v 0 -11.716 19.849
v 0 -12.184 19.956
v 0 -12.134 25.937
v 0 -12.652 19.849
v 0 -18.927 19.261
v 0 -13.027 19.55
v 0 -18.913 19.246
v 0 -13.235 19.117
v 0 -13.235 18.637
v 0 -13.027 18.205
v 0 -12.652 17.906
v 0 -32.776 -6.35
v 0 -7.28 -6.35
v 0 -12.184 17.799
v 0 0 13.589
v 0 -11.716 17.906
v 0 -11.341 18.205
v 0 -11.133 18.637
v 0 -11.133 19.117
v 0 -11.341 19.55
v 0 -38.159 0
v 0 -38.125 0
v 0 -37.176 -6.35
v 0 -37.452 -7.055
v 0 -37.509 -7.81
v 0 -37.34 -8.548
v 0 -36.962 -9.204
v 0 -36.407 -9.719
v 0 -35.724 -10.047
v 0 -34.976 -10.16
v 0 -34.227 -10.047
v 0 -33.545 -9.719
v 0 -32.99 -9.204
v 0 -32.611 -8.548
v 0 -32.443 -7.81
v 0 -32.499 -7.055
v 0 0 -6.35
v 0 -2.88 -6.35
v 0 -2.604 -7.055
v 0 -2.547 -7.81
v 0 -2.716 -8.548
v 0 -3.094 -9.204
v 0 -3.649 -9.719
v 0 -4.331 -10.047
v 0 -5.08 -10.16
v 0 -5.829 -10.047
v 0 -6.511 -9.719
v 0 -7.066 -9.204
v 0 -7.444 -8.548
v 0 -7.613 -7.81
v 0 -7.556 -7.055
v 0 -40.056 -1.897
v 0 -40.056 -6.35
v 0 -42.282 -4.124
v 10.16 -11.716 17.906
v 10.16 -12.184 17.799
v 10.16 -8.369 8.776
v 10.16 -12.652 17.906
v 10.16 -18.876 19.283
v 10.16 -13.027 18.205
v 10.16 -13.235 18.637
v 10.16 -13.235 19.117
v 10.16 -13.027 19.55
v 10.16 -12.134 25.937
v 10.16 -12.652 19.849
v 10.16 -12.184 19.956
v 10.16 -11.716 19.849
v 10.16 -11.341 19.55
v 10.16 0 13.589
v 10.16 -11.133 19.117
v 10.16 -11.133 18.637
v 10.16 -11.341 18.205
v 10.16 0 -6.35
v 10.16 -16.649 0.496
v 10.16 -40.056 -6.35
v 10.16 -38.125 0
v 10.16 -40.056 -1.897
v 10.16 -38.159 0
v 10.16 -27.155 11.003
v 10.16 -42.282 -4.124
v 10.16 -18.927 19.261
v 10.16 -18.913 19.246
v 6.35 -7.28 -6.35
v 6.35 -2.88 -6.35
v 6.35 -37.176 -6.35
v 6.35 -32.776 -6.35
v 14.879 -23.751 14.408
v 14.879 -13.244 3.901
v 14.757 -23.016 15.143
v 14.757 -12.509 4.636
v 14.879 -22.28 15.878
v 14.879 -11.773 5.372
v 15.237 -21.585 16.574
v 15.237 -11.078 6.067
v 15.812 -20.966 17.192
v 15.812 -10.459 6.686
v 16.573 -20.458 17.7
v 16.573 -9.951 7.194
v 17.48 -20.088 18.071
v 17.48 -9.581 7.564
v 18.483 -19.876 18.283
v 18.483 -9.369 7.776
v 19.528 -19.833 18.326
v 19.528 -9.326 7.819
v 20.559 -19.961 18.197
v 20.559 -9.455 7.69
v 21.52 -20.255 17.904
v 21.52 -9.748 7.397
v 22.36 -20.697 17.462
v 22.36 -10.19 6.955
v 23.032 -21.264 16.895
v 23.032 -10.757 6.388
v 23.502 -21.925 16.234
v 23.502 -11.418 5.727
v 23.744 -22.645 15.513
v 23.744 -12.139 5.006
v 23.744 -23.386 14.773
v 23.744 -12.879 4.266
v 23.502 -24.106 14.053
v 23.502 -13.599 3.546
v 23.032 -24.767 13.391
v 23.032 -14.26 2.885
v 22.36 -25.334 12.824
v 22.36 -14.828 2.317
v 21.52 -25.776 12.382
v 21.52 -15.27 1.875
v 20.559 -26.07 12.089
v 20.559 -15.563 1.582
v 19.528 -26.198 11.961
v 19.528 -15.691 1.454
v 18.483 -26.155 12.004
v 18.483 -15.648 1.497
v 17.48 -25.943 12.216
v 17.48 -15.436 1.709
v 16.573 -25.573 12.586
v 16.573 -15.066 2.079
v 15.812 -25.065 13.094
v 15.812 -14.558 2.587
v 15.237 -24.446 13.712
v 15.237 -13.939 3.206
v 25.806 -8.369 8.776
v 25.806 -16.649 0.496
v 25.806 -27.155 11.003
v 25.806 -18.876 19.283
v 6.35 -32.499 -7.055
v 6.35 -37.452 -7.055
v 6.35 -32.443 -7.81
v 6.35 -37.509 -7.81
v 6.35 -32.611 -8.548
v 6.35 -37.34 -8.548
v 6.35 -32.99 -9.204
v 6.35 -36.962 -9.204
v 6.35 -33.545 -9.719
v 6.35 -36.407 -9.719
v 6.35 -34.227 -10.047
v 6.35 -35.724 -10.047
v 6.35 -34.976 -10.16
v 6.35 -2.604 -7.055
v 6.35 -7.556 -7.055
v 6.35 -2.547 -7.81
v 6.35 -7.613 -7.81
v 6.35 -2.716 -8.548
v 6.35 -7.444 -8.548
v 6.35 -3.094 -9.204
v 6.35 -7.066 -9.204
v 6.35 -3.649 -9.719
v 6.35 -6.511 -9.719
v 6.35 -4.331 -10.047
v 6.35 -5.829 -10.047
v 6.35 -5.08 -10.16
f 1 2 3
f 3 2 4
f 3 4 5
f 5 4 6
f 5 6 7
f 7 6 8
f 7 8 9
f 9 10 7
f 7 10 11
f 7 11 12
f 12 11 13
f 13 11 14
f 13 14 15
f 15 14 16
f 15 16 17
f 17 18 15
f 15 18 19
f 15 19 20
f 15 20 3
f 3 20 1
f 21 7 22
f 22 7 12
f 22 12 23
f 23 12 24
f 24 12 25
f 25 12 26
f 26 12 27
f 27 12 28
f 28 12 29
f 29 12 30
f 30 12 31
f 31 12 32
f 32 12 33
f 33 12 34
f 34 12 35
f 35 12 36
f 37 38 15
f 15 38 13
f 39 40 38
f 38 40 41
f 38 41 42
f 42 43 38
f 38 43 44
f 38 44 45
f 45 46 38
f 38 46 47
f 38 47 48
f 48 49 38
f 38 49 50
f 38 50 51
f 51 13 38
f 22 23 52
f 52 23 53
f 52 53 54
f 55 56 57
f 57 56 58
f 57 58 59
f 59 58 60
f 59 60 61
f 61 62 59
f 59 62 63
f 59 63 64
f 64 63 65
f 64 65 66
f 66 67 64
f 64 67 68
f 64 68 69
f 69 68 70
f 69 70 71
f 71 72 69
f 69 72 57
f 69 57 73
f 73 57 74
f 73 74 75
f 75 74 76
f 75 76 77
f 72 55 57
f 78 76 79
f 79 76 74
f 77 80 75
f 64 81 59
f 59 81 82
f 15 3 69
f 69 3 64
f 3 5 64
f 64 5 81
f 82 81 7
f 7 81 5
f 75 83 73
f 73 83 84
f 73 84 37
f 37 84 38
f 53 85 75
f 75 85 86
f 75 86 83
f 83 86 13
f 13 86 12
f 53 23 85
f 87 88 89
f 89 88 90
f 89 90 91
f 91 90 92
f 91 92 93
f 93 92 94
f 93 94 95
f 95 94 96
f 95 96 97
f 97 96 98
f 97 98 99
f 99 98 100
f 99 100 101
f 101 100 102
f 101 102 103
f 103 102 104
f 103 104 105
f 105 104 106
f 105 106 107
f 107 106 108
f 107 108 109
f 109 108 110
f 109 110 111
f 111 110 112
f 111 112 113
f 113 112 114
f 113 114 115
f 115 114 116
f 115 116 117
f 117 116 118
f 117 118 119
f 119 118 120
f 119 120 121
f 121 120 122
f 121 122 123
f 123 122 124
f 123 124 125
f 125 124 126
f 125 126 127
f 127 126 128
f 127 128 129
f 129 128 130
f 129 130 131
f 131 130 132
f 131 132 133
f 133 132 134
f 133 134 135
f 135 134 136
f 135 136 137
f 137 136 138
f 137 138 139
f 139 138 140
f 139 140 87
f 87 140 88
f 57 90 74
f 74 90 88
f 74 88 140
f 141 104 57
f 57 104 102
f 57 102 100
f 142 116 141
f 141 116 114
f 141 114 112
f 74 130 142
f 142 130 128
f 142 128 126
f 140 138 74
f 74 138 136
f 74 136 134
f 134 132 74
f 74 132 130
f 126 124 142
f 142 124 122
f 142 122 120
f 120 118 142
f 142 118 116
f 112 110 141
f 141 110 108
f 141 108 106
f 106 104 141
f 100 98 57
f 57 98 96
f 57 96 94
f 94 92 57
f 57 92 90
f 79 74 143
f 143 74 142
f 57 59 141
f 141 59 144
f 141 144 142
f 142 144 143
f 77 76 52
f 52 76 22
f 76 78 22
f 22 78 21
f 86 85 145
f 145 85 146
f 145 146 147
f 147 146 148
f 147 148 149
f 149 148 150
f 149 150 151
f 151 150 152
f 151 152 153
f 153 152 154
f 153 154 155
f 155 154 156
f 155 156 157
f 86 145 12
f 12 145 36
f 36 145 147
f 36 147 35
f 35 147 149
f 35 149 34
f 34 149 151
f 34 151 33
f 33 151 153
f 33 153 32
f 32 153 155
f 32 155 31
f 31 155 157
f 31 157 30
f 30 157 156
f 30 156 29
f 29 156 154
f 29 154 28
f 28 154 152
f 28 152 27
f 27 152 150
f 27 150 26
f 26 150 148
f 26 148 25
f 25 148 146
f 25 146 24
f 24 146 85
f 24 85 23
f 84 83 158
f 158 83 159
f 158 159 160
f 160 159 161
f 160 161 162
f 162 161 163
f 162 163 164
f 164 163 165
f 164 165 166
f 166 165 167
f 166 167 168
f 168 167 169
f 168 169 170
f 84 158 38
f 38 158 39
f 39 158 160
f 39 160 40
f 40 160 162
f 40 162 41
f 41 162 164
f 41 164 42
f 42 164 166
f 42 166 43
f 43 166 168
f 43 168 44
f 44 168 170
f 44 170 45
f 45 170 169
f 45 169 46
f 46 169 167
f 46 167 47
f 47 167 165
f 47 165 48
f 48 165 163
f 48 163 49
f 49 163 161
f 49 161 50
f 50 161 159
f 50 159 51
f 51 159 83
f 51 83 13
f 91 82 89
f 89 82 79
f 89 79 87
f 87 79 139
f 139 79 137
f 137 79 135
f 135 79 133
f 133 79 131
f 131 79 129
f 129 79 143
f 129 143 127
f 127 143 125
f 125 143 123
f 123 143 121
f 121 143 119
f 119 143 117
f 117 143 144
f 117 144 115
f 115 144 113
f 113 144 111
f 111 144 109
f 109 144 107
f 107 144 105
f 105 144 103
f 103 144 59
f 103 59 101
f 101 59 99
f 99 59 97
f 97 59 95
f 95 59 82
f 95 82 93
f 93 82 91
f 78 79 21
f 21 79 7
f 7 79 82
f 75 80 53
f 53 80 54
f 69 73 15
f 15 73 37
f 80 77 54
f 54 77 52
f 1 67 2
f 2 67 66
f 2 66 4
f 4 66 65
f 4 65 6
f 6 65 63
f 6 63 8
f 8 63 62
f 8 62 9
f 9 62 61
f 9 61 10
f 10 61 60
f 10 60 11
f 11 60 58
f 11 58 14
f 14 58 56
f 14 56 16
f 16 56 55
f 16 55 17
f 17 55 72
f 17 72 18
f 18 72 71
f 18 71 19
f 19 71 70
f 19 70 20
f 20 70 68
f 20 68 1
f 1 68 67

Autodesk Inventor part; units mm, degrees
ref_plane "YZ Plane" through (0, 0, 0) normal (1, 0, 0) x (0, 1, 0)
ref_plane "XZ Plane" through (0, 0, 0) normal (0, 1, 0) x (-1, 0, 0)
ref_plane "XY Plane" through (0, 0, 0) normal (0, 0, 1) x (1, 0, 0)
sketch "Sketch1" plane through (0, 0, 0) normal (1, 0, 0) x (0, 1, 0)
  line L0 (0, 0) -> (-40.0558, 0)
  line L1 (-40.0558, 0) -> (-40.0558, -6.35)
  line L2 (-40.0558, -6.35) -> (0, -6.35)
  line L3 (0, -6.35) -> (0, 0)
  line L4 (-23.495, -6.35) -> (-34.0019, 4.1569)
  line L5 (-34.0019, 4.1569) -> (-42.2823, -4.1235)
  line L6 (-42.2823, -4.1235) -> (-31.7754, -14.6304)
  line L7 (-31.7754, -14.6304) -> (-23.495, -6.35)
  line L8 (-23.495, -6.35) -> (-8.636, -6.35) construction
  line L9 (-23.495, -6.35) -> (0, -6.35) construction
  dimension "d0" = 40.0558
  dimension "d2" = 6.35
  dimension "d3" = 14.859
  dimension "d4" = 135
  dimension "d6" = 23.495
extrude "Extrusion1" add sketch "Sketch1" along normal blind 26.3652
sketch "Sketch2" plane through (26.3652, 0, 0) normal (1, 0, 0) x (0, 0, -1)
  line L0 (6.35, -23.495) -> (6.35, 0) projected
  line L1 (6.35, 0) -> (0, 0) projected
  line L2 (0, 0) -> (0, -29.845) projected
  line L3 (14.6304, -31.7754) -> (6.35, -23.495) projected
  line L4 (6.35, -23.495) -> (0, -29.845)
  line L5 (0, -29.845) -> (0, 0)
  line L6 (0, 0) -> (6.35, 0)
  line L7 (6.35, 0) -> (6.35, -23.495)
extrude "Extrusion2" cut sketch "Sketch2" against normal blind 16.2052
sketch "Sketch5" plane through (0, 0, 0) normal (-1, 0, 0) x (0, 0, 1)
  line L0 (-4.1235, -42.2823) -> (-14.6304, -31.7754) projected
  line L1 (-6.35, -23.495) -> (-6.35, 0) projected
  line L2 (-6.35, -23.495) -> (-6.35, -40.0558)
  line L3 (-6.35, -40.0558) -> (-14.6304, -31.7754)
  line L4 (-14.6304, -31.7754) -> (-6.35, -23.495)
extrude "Extrusion5" cut sketch "Sketch5" against normal blind 12.7
sketch "Sketch6" plane through (26.3652, -23.495, -6.35) normal (0, 0.7071, -0.7071) x (-1, 0, 0)
  line L0 (13.6652, -11.7103) -> (0, -11.7103) projected
  circle A0 centre (6.8326, -5.8551) radius 4.5085
  line L1 (13.6652, 0) -> (0, 0) projected
  line L2 (0, -11.7103) -> (0, 0) projected
  line L3 (6.8326, -5.8551) -> (6.8326, 0) construction
  line L4 (6.8326, -5.8551) -> (6.8326, -11.7103) construction
  point P0 (26.3652, 21.1036)
  dimension "d24" = 9.017
extrude "Extrusion6" cut sketch "Sketch6" against normal blind 25.4
sketch "Sketch7" plane through (0, 0, 0) normal (-1, 0, 0) x (0, 0, 1)
  line L0 (-6.35, 0) -> (-6.35, -40.0558) projected
  line L1 (-6.35, 0) -> (0, 0) projected
  circle A0 centre (-7.62, -34.9758) radius 2.54
  line L2 (-7.62, -34.9758) -> (-6.35, -34.9758) construction
  line L3 (-6.35, -34.9758) -> (-6.35, -40.0558) construction
  line L4 (-6.35, 0) -> (-6.35, -5.08) construction
  line L5 (-6.35, -5.08) -> (-7.62, -5.08) construction
  circle A1 centre (-7.62, -5.08) radius 2.54
  dimension "d27" = 1.27
  dimension "d29" = 5.08
  dimension "d30" = 5.08
  dimension "d31" = 5.08
  dimension "d32" = 1.27
  dimension "d33" = 5.08
extrude "Extrusion7" add sketch "Sketch7" against normal blind 6.35
sketch "Sketch8" plane through (0, 0, 0) normal (-1, 0, 0) x (0, 0, 1)
  line L0 (0, -29.845) -> (4.1569, -34.0019) projected
  line L1 (0, 0) -> (0, -29.845) projected
  line L2 (4.1569, -34.0019) -> (-4.1235, -42.2823) projected
  line L3 (-6.35, -7.2797) -> (-6.35, -32.7761) projected
  line L4 (4.1569, -34.0019) -> (4.1569, -26.3819)
  line L5 (4.1569, -26.3819) -> (0, -22.225)
  line L6 (0, -22.225) -> (0, -29.845)
  line L7 (4.1569, -34.0019) -> (0, -29.845)
  dimension "d42" = 7.62
extrude "Extrusion8" add sketch "Sketch8" against normal blind 12.1412
ref_plane "Work Plane1" through (12.1412, -6.35, -6.35) normal (1, 0, 0) x (0, 0, -1)
sketch "Sketch9" plane through (12.1412, -6.35, -6.35) normal (1, 0, 0) x (0, 0, -1)
  line L0 (-10.5069, 6.35) -> (-10.5069, -29.5569) projected
  line L1 (-6.35, -25.4) -> (-10.5069, -29.5569) projected
  line L2 (-6.35, -25.4) -> (-6.35, 0) projected
  circle A0 centre (-8.4284, -20.4934) radius 1.5875
  line L3 (-6.35, -20.4934) -> (-10.5069, -20.4934) construction
  line L4 (-8.4284, -20.4934) -> (-8.4284, -27.4784) construction
  point P0 (-6.35, 6.35)
  dimension "d38" = 3.175
  dimension "d39" = 6.985
extrude "Extrusion9" add sketch "Sketch9" along normal blind 2.54
sketch "Sketch10" plane through (26.3652, 0, 0) normal (1, 0, 0) x (0, 0, -1)
  line L0 (0, -40.0558) -> (1.897, -40.0558) projected
  line L1 (14.6304, -31.7754) -> (6.35, -23.495) projected
  line L2 (0, -38.1254) -> (1.897, -40.0558)
  line L3 (1.897, -40.0558) -> (0, -40.0558)
  line L4 (0, -38.1254) -> (0, -40.0558)
  line L5 (0, -38.1254) -> (1.897, -40.0558)
  point P0 (0, 0)
  dimension "d43" = 0.5
extrude "Extrusion10" cut sketch "Sketch10" against normal blind 38.1
sketch "Sketch11" plane through (14.6812, -26.8434, 2.0784) normal (1, 0, 0) x (0, 0, -1)
  circle A0 centre (0, 0) radius 1.5875 projected
  circle A1 centre (0, 0) radius 1.5875
  line L0 (-1.5875, 0) -> (1.5875, 0)
  line L1 (1.5875, 0) -> (1.5875, -2.159)
  line L2 (1.5875, -2.159) -> (-1.5875, -2.159)
  line L3 (-1.5875, -2.159) -> (-1.5875, 0)
  point P0 (2.0784, 26.8434)
  dimension "d46" = 2.159
extrude "Extrusion11" add sketch "Sketch11" along normal blind 2.54
sketch "Sketch14" plane through (12.1412, -6.35, -6.35) normal (1, 0, 0) x (0, 0, -1)
  line L0 (-6.8465, -10.2985) -> (-15.1263, -2.0187)
  line L1 (8.2804, -25.4254) -> (0, -17.145) projected
  line L2 (-15.1263, -2.0187) -> (-25.6332, -12.5256)
  line L3 (-25.6332, -12.5256) -> (-17.3534, -20.8054)
  line L4 (-17.3534, -20.8054) -> (-6.8465, -10.2985)
  point P0 (-6.35, 6.35)
  dimension "d60" = 11.7094
  dimension "d61" = 14.859
extrude "Extrusion14" add sketch "Sketch14" along normal blind 13.6652
sketch "Sketch15" plane through (12.1412, -6.35, -6.35) normal (-1, 0, 0) x (0, 0, 1)
  line L0 (6.8465, -10.2985) -> (15.1263, -2.0187) projected
  line L1 (25.6332, -12.5256) -> (17.3534, -20.8054) projected
  line L2 (15.1263, -2.0187) -> (25.6332, -12.5256)
  line L3 (25.6332, -12.5256) -> (17.3534, -20.8054)
  line L4 (6.8465, -10.2985) -> (17.3534, -20.8054)
  line L5 (6.8465, -10.2985) -> (15.1263, -2.0187)
  point P0 (6.35, 6.35)
extrude "Extrusion15" add sketch "Sketch15" along normal up to surface (12.1412 mm away)
sketch "Sketch17" plane through (0, 0, 0) normal (-1, 0, 0) x (0, 0, 1)
  line L0 (-1.897, -40.0558) -> (0, -38.1254) projected
  line L1 (4.1569, -26.3819) -> (0, -22.225) projected
  line L2 (0, 0) -> (0, -22.225) projected
  line L3 (-6.35, -37.1755) -> (-6.35, -40.0558) projected
  line L4 (-1.897, -40.0558) -> (-4.1235, -42.2823) projected
  line L5 (0, 0) -> (0, -22.225)
  line L6 (0, -22.225) -> (3.1163, -19.1087)
  line L7 (3.1163, -19.1087) -> (11.1874, -11.0376)
  line L8 (11.1874, -11.0376) -> (8.66, -8.5101)
  line L9 (8.66, -8.5101) -> (0, 0)
extrude "Extrusion17" add sketch "Sketch17" against normal up to surface (10.16 mm away)
sketch "Sketch18" plane through (25.8064, -8.3687, 8.7763) normal (0, 0.7071, -0.7071) x (-1, 0, 0)
  circle A0 centre (6.5407, -5.8547) radius 4.5085
  point P0 (25.8064, -0.2882)
  dimension "d70" = 9.017
extrude "Extrusion18" cut sketch "Sketch18" against normal up to surface (14.859 mm away)
sketch "Sketch19" plane through (26.3652, 0, 0) normal (1, 0, 0) x (0, 0, -1)
  line L0 (0, -38.1588) -> (0, -38.1254) projected
  line L1 (0, -38.1254) -> (1.897, -40.0558) projected
  line L2 (1.897, -40.0558) -> (4.1235, -42.2823) projected
  line L3 (14.6304, -31.7754) -> (6.35, -23.495) projected
  line L4 (-4.1569, -34.0019) -> (0, -38.1588) projected
  line L5 (-4.1569, -34.0019) -> (6.35, -23.495)
  line L6 (14.6304, -31.7754) -> (6.35, -23.495)
  line L7 (14.6304, -31.7754) -> (4.1235, -42.2823)
  line L8 (-4.1569, -34.0019) -> (4.1235, -42.2823)
  point P0 (0, 0)
extrude "Extrusion19" cut sketch "Sketch19" against normal up to surface (16.2052 mm away) contours L4 L5 L3 L7 L2 L1 L0
sketch "Sketch21" plane through (10.16, 0, 0) normal (1, 0, 0) x (0, 0, -1)
  line L0 (-8.6473, -8.4977) -> (0, 0) projected
  line L1 (0, 0) -> (-19.2606, -18.9274)
  line L2 (-19.2606, -18.9274) -> (-25.9368, -12.1336)
  line L3 (0, 0) -> (-6.6762, 6.7937)
  line L4 (-6.6762, 6.7937) -> (-25.9368, -12.1336)
  line L5 (0, 0) -> (-4.5719, 0)
  line L6 (-4.5719, 0) -> (-13.5895, 0)
  dimension "d75" = 9.525
extrude "Extrusion21" add sketch "Sketch21" against normal up to surface (10.16 mm away) contours L1 L2 L4 L6 L5 L0
sketch "Sketch22" plane through (10.16, 0, 0) normal (1, 0, 0) x (0, 0, -1)
  line L0 (-8.7763, -8.3687) -> (-19.2832, -18.8756) projected
  circle A0 centre (-18.8774, -12.1837) radius 1.588
  line L1 (-25.9368, -12.1336) -> (-19.2606, -18.9274) projected
  point P0 (0, 0)
  dimension "d81" = 3.176
  dimension "d82" = 4.445
  dimension "d95" = 5
extrude "Extrusion22" [suppressed]
sketch "Sketch23" plane through (24.2316, -12.1837, 18.8774) normal (1, 0, 0) x (0, 0, -1)
  circle A0 centre (0, 0) radius 1.588 projected
  circle A1 centre (0, 0) radius 1.588
  line L0 (0.0027, 1.588) -> (-2.1563, 1.588)
  line L1 (-2.1563, 1.588) -> (-2.1563, -1.588)
  line L2 (-2.1563, -1.588) -> (0.0027, -1.588)
  line L3 (0.0027, -1.588) -> (0.0027, 1.588)
  point P0 (18.8774, 12.1837)
  dimension "d85" = 2.159
extrude "Extrusion23" [suppressed]
sketch "Sketch24" plane through (10.16, 0, 0) normal (1, 0, 0) x (0, 0, -1)
  line L0 (6.35, 0) -> (6.35, -40.0558) projected
  line L1 (-13.5895, 0) -> (6.35, 0) projected
  line L2 (-13.5895, 0) -> (-25.9368, -12.1336) projected
  line L3 (-25.9368, -12.1336) -> (-19.2606, -18.9274) projected
  line L4 (-19.2606, -18.9274) -> (-19.2459, -18.9129) projected
  line L5 (-19.2832, -18.8756) -> (-19.2459, -18.9129) projected
  line L6 (-8.7763, -8.3687) -> (-19.2832, -18.8756) projected
  line L7 (-0.4965, -16.6485) -> (-8.7763, -8.3687) projected
  line L8 (-3.0365, -19.1885) -> (-0.4965, -16.6485) projected
  line L9 (0, -22.225) -> (-3.0365, -19.1885) projected
  line L10 (0, -29.845) -> (0, -22.225) projected
  line L11 (-4.1569, -34.0019) -> (0, -29.845) projected
  line L12 (0, -38.1588) -> (-4.1569, -34.0019) projected
  line L13 (0, -38.1254) -> (0, -38.1588) projected
  line L14 (1.897, -40.0558) -> (0, -38.1254) projected
  line L15 (4.1235, -42.2823) -> (1.897, -40.0558) projected
  line L16 (6.35, -40.0558) -> (4.1235, -42.2823) projected
  line L17 (-4.1569, -34.0019) -> (0, -34.0019)
  line L18 (0, -34.0019) -> (0, -22.225)
  line L19 (0, -22.225) -> (-4.1569, -22.225)
  line L20 (-4.1569, -22.225) -> (-4.1569, -34.0019)
  point P0 (0, 0)
extrude "Extrusion24" cut sketch "Sketch24" along normal up to surface (7.0612 mm away) contours L20 L19 L10 L11 | L11 L18 L17
sketch "Sketch25" plane through (10.16, 0, 0) normal (1, 0, 0) x (0, 0, -1)
  line L0 (-4.1569, -34.0019) -> (-4.1569, -26.3819) projected
  line L1 (-4.1569, -34.0019) -> (-4.1569, -26.3819)
  line L2 (-4.1569, -26.3819) -> (0, -22.225)
  line L3 (0, -22.225) -> (-3.0365, -19.1885)
  line L4 (-4.1569, -34.0019) -> (-11.3495, -26.8093)
  line L5 (-11.3495, -26.8093) -> (-3.0365, -19.1885)
  point P0 (0, 0)
extrude "Extrusion25" add sketch "Sketch25" against normal up to surface (10.16 mm away)
sketch "Sketch26" plane through (10.16, 0, 0) normal (1, 0, 0) x (0, 0, -1)
  circle A0 centre (-18.8774, -12.1837) radius 1.588 projected
  circle A1 centre (-18.8774, -12.1837) radius 2.54
  point P0 (0, 0)
  dimension "d92" = 5.08
extrude "Extrusion26" [suppressed]
sketch "Sketch27" plane through (10.16, 0, 0) normal (1, 0, 0) x (0, 0, -1)
  circle A0 centre (-18.8774, -12.1837) radius 1.588 projected
  line L0 (-25.9368, -12.1336) -> (-19.2606, -18.9274) projected
  line L1 (-13.5895, 0) -> (-25.9368, -12.1336) projected
  point P0 (0, 0)
  dimension "d96" = 5
  dimension "d97" = 4.9837
hole "Hole1" at (10.16, -12.1837, 18.8774) direction (-1, 0, 0) diameter 2.1565 end through all thread size "4-40 UNC" class "2B" standard "ANSI Unified Screw Threads"
properties part number "ScrewMount"
